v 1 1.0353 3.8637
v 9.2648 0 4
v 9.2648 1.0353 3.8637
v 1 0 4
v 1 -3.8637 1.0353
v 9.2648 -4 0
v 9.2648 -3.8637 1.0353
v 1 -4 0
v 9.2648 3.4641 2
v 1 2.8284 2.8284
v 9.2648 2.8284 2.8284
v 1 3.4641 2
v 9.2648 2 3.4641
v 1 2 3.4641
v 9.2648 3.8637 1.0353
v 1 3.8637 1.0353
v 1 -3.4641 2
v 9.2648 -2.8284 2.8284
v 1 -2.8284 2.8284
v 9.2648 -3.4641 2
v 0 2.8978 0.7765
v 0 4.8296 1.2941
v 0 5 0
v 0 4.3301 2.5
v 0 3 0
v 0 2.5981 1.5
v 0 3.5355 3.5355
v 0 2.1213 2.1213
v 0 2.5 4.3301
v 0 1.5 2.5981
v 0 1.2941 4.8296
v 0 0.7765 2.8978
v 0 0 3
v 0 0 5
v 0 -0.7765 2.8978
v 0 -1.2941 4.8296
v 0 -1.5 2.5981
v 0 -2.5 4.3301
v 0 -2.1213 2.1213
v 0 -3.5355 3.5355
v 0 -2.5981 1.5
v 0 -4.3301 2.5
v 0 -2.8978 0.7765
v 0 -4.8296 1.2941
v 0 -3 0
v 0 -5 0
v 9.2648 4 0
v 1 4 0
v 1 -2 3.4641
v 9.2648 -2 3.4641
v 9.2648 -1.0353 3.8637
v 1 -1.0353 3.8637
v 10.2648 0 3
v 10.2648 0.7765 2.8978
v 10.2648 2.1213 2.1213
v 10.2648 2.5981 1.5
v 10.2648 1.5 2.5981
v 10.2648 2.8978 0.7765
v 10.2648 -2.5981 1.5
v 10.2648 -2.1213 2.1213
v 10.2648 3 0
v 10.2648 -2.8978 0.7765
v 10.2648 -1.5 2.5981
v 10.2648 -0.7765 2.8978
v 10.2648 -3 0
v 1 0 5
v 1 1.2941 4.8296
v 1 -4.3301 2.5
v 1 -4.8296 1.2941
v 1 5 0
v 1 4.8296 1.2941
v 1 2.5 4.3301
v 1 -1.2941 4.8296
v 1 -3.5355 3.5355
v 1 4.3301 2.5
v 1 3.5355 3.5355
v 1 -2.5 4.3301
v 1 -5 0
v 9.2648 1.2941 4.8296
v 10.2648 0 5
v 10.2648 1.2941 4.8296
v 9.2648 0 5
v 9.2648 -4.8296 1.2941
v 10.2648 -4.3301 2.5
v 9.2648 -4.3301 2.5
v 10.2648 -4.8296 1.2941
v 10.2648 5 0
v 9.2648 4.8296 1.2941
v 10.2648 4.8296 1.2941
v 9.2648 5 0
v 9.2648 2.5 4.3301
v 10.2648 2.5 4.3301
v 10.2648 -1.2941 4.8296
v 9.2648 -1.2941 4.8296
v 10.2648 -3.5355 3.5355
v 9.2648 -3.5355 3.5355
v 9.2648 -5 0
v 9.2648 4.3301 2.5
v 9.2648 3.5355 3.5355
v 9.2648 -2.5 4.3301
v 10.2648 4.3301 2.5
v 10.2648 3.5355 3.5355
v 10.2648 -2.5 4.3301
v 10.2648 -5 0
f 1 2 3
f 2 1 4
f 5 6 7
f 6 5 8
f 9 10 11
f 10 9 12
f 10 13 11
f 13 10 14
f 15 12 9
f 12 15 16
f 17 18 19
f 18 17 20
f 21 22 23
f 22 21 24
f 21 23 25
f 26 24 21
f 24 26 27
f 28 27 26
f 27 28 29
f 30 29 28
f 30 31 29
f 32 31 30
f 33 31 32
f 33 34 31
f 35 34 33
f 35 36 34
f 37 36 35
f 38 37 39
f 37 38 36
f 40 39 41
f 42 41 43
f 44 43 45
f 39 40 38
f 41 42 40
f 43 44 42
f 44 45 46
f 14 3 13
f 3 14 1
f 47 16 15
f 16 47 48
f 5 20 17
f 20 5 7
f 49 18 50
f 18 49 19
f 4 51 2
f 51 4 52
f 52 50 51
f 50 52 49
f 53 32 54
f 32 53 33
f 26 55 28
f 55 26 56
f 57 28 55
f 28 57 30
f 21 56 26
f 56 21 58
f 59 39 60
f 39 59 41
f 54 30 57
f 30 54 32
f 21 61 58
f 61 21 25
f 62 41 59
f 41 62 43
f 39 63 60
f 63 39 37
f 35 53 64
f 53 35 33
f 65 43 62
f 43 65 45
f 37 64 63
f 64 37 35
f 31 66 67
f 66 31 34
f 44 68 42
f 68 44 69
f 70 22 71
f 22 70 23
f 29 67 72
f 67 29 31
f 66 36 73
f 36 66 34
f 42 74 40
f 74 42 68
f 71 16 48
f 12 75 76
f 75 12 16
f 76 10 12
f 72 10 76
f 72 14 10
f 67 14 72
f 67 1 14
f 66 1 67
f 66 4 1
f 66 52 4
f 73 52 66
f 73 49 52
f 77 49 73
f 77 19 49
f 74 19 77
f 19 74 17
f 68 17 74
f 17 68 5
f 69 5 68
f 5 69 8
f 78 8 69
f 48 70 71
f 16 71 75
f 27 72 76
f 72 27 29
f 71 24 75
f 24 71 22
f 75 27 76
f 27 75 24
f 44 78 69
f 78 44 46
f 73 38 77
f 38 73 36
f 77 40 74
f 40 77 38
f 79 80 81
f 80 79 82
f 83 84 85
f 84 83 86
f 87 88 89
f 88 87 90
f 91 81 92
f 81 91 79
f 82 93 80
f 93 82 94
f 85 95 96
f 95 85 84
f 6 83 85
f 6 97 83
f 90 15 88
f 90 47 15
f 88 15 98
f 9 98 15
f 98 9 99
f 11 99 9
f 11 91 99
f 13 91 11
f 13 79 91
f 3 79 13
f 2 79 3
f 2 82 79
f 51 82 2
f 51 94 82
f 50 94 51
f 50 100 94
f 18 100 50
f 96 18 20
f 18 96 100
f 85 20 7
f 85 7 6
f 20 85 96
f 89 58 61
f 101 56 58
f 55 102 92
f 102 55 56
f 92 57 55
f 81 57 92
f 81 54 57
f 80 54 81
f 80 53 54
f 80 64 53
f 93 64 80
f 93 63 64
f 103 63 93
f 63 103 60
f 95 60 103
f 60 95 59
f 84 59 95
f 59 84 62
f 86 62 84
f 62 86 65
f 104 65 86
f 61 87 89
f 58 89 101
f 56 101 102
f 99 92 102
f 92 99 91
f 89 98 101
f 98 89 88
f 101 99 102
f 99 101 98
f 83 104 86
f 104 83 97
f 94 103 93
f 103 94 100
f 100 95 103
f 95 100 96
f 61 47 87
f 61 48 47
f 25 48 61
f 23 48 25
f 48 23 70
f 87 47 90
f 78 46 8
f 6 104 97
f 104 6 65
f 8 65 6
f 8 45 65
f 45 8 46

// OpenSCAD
// file: ../build_environments.scad
// build_environments.scad: modules to build level sections
//

module pool(diameter=10.0, wall_height=2.0, step_width=3.0, connections=[])
{
    difference() {
        union() {
        difference() {
            cylinder(h=0.5,r1=diameter+step_width,r2=diameter+step_width,$fn=48);
            translate([0,0,-0.1])
                cylinder(h=0.7,r1=diameter,r2=diameter,$fn=48);
        }
        difference() {
            cylinder(h=wall_height,r1=diameter+step_width+1.0,r2=diameter+step_width+1.0,$fn=48);
            translate([0,0,-0.1])
                cylinder(h=wall_height+0.2,r1=diameter+step_width,r2=diameter+step_width,$fn=48);
        }
        }
    
        for (c = connections)
        {
            rotate([0,90,0]) {
                angle = atan2(c[1],c[0]);
                rotate([-angle,0,0]) {
                    cylinder(h=diameter+5.0,r1=c[2],r2=c[2],$fn=48);
                }
            }
        }
    }
}

module straight(length=10.0, width=2.0, dy1=0.0, dy2=0.0, dz=0.0)
{
    dims = [0, 0, 0, 0, 0, (dz/length)];
    matrix = [
        [ 1, dims[0], dims[1], 0 ],
        [ dims[2], 1, dims[4], 0 ],
        [ dims[5], dims[3], 1, 0 ],
        [ 0, 0, 0, 1 ]
    ];
    multmatrix(matrix)
    difference() {
        translate([dy1,0,0])
        union() {
            rotate([0,90,0]) {
                difference() {
                    cylinder(h=(length-dy1-dy2),r1=width+1.0,r2=width+1.0,$fn=24);
                    translate([0,0,-0.1])
                        cylinder(h=(length-dy1-dy2+0.2),r1=width,r2=width,$fn=24);
                }
                difference() {
                    cylinder(h=1.0,r1=width+2.0,r2=width+2.0,$fn=24);
                    translate([0,0,-0.1])
                        cylinder(h=1.2,r1=width,r2=width,$fn=24);
                }
                translate([0,0,(length-dy1-dy2)-1.0]) {
                    difference() {
                        cylinder(h=1.0,r1=width+2.0,r2=width+2.0,$fn=24);
                        translate([0,0,-0.1])
                            cylinder(h=1.2,r1=width,r2=width,$fn=24);
                    }
                }
            }
        }
        translate([0,0,-(2*width+4.0)/2])
            cube([3*length,3*length,2*width+4.0],center=true);
    }
}

module curve(p0=[0,0], center=[0,0], dir=1, angle=0.0, width=2.0)
{
    radius = sqrt((p0[0]-center[0])*(p0[0]-center[0]) + (p0[1]-center[1])*(p0[1]-center[1]));
    if (dir == 0) {
        difference() {
            rotate([0,0,-90])
            difference() {
                rotate_extrude(angle = angle, convexity = 10, $fn=32)
                    translate([radius, 0, 0])
                        circle(r = width+1.0,$fn=24);
                rotate([0,0,-1.0])
                    rotate_extrude(angle = angle+2.0, convexity = 10, $fn=32)
                        translate([radius, 0, 0])
                            circle(r = width,$fn=24);
            }
            translate([0,0,-(2*width+4.0)/2])
                cube([5*radius,5*radius,2*width+4.0],center=true);
        }
    }
    else {
        difference() {
            rotate([0,0,90])
            difference() {
                rotate_extrude(angle = -angle, convexity = 10, $fn=32)
                    translate([radius, 0, 0])
                        circle(r = width+1.0,$fn=24);
                rotate([0,0,1.0])
                    rotate_extrude(angle = -angle-2.0, convexity = 10, $fn=32)
                        translate([radius, 0, 0])
                            circle(r = width,$fn=24);
            }
            translate([0,0,-(2*width+4.0)/2])
                cube([5*radius,5*radius,2*width+4.0],center=true);
        }
    }

}

// test pool
//pool(diameter=12.0000, wall_height=3.0000, step_width=3.0000, connections=[[0.0000,-26.0000,2.0000], [23.6074,0.0000,2.0000]]);

// test straight, slope
//straight(length=26.0000, width=2.0000, dy1=11.8322, dy2=6.7082, dz=0.0000);
//straight(length=29.1549, width=12.0000, dy1=0.0000, dy2=0.0000, dz=-15.0000);

// test curve
//curve(p0=[23.6074, 0.0000], center=[23.6074, 5.0000], dir=0, angle=60.1011, width=2.0000);
//curve(p0=[33.6426, 12.4219], center=[37.9771, 9.9295], dir=1, angle=120.4627, width=2.0000);
// main file
use <../build_environments.scad>;
straight(length=16.5894, width=3.0000, dy1=0.0000, dy2=6.3246, dz=0.0000);
